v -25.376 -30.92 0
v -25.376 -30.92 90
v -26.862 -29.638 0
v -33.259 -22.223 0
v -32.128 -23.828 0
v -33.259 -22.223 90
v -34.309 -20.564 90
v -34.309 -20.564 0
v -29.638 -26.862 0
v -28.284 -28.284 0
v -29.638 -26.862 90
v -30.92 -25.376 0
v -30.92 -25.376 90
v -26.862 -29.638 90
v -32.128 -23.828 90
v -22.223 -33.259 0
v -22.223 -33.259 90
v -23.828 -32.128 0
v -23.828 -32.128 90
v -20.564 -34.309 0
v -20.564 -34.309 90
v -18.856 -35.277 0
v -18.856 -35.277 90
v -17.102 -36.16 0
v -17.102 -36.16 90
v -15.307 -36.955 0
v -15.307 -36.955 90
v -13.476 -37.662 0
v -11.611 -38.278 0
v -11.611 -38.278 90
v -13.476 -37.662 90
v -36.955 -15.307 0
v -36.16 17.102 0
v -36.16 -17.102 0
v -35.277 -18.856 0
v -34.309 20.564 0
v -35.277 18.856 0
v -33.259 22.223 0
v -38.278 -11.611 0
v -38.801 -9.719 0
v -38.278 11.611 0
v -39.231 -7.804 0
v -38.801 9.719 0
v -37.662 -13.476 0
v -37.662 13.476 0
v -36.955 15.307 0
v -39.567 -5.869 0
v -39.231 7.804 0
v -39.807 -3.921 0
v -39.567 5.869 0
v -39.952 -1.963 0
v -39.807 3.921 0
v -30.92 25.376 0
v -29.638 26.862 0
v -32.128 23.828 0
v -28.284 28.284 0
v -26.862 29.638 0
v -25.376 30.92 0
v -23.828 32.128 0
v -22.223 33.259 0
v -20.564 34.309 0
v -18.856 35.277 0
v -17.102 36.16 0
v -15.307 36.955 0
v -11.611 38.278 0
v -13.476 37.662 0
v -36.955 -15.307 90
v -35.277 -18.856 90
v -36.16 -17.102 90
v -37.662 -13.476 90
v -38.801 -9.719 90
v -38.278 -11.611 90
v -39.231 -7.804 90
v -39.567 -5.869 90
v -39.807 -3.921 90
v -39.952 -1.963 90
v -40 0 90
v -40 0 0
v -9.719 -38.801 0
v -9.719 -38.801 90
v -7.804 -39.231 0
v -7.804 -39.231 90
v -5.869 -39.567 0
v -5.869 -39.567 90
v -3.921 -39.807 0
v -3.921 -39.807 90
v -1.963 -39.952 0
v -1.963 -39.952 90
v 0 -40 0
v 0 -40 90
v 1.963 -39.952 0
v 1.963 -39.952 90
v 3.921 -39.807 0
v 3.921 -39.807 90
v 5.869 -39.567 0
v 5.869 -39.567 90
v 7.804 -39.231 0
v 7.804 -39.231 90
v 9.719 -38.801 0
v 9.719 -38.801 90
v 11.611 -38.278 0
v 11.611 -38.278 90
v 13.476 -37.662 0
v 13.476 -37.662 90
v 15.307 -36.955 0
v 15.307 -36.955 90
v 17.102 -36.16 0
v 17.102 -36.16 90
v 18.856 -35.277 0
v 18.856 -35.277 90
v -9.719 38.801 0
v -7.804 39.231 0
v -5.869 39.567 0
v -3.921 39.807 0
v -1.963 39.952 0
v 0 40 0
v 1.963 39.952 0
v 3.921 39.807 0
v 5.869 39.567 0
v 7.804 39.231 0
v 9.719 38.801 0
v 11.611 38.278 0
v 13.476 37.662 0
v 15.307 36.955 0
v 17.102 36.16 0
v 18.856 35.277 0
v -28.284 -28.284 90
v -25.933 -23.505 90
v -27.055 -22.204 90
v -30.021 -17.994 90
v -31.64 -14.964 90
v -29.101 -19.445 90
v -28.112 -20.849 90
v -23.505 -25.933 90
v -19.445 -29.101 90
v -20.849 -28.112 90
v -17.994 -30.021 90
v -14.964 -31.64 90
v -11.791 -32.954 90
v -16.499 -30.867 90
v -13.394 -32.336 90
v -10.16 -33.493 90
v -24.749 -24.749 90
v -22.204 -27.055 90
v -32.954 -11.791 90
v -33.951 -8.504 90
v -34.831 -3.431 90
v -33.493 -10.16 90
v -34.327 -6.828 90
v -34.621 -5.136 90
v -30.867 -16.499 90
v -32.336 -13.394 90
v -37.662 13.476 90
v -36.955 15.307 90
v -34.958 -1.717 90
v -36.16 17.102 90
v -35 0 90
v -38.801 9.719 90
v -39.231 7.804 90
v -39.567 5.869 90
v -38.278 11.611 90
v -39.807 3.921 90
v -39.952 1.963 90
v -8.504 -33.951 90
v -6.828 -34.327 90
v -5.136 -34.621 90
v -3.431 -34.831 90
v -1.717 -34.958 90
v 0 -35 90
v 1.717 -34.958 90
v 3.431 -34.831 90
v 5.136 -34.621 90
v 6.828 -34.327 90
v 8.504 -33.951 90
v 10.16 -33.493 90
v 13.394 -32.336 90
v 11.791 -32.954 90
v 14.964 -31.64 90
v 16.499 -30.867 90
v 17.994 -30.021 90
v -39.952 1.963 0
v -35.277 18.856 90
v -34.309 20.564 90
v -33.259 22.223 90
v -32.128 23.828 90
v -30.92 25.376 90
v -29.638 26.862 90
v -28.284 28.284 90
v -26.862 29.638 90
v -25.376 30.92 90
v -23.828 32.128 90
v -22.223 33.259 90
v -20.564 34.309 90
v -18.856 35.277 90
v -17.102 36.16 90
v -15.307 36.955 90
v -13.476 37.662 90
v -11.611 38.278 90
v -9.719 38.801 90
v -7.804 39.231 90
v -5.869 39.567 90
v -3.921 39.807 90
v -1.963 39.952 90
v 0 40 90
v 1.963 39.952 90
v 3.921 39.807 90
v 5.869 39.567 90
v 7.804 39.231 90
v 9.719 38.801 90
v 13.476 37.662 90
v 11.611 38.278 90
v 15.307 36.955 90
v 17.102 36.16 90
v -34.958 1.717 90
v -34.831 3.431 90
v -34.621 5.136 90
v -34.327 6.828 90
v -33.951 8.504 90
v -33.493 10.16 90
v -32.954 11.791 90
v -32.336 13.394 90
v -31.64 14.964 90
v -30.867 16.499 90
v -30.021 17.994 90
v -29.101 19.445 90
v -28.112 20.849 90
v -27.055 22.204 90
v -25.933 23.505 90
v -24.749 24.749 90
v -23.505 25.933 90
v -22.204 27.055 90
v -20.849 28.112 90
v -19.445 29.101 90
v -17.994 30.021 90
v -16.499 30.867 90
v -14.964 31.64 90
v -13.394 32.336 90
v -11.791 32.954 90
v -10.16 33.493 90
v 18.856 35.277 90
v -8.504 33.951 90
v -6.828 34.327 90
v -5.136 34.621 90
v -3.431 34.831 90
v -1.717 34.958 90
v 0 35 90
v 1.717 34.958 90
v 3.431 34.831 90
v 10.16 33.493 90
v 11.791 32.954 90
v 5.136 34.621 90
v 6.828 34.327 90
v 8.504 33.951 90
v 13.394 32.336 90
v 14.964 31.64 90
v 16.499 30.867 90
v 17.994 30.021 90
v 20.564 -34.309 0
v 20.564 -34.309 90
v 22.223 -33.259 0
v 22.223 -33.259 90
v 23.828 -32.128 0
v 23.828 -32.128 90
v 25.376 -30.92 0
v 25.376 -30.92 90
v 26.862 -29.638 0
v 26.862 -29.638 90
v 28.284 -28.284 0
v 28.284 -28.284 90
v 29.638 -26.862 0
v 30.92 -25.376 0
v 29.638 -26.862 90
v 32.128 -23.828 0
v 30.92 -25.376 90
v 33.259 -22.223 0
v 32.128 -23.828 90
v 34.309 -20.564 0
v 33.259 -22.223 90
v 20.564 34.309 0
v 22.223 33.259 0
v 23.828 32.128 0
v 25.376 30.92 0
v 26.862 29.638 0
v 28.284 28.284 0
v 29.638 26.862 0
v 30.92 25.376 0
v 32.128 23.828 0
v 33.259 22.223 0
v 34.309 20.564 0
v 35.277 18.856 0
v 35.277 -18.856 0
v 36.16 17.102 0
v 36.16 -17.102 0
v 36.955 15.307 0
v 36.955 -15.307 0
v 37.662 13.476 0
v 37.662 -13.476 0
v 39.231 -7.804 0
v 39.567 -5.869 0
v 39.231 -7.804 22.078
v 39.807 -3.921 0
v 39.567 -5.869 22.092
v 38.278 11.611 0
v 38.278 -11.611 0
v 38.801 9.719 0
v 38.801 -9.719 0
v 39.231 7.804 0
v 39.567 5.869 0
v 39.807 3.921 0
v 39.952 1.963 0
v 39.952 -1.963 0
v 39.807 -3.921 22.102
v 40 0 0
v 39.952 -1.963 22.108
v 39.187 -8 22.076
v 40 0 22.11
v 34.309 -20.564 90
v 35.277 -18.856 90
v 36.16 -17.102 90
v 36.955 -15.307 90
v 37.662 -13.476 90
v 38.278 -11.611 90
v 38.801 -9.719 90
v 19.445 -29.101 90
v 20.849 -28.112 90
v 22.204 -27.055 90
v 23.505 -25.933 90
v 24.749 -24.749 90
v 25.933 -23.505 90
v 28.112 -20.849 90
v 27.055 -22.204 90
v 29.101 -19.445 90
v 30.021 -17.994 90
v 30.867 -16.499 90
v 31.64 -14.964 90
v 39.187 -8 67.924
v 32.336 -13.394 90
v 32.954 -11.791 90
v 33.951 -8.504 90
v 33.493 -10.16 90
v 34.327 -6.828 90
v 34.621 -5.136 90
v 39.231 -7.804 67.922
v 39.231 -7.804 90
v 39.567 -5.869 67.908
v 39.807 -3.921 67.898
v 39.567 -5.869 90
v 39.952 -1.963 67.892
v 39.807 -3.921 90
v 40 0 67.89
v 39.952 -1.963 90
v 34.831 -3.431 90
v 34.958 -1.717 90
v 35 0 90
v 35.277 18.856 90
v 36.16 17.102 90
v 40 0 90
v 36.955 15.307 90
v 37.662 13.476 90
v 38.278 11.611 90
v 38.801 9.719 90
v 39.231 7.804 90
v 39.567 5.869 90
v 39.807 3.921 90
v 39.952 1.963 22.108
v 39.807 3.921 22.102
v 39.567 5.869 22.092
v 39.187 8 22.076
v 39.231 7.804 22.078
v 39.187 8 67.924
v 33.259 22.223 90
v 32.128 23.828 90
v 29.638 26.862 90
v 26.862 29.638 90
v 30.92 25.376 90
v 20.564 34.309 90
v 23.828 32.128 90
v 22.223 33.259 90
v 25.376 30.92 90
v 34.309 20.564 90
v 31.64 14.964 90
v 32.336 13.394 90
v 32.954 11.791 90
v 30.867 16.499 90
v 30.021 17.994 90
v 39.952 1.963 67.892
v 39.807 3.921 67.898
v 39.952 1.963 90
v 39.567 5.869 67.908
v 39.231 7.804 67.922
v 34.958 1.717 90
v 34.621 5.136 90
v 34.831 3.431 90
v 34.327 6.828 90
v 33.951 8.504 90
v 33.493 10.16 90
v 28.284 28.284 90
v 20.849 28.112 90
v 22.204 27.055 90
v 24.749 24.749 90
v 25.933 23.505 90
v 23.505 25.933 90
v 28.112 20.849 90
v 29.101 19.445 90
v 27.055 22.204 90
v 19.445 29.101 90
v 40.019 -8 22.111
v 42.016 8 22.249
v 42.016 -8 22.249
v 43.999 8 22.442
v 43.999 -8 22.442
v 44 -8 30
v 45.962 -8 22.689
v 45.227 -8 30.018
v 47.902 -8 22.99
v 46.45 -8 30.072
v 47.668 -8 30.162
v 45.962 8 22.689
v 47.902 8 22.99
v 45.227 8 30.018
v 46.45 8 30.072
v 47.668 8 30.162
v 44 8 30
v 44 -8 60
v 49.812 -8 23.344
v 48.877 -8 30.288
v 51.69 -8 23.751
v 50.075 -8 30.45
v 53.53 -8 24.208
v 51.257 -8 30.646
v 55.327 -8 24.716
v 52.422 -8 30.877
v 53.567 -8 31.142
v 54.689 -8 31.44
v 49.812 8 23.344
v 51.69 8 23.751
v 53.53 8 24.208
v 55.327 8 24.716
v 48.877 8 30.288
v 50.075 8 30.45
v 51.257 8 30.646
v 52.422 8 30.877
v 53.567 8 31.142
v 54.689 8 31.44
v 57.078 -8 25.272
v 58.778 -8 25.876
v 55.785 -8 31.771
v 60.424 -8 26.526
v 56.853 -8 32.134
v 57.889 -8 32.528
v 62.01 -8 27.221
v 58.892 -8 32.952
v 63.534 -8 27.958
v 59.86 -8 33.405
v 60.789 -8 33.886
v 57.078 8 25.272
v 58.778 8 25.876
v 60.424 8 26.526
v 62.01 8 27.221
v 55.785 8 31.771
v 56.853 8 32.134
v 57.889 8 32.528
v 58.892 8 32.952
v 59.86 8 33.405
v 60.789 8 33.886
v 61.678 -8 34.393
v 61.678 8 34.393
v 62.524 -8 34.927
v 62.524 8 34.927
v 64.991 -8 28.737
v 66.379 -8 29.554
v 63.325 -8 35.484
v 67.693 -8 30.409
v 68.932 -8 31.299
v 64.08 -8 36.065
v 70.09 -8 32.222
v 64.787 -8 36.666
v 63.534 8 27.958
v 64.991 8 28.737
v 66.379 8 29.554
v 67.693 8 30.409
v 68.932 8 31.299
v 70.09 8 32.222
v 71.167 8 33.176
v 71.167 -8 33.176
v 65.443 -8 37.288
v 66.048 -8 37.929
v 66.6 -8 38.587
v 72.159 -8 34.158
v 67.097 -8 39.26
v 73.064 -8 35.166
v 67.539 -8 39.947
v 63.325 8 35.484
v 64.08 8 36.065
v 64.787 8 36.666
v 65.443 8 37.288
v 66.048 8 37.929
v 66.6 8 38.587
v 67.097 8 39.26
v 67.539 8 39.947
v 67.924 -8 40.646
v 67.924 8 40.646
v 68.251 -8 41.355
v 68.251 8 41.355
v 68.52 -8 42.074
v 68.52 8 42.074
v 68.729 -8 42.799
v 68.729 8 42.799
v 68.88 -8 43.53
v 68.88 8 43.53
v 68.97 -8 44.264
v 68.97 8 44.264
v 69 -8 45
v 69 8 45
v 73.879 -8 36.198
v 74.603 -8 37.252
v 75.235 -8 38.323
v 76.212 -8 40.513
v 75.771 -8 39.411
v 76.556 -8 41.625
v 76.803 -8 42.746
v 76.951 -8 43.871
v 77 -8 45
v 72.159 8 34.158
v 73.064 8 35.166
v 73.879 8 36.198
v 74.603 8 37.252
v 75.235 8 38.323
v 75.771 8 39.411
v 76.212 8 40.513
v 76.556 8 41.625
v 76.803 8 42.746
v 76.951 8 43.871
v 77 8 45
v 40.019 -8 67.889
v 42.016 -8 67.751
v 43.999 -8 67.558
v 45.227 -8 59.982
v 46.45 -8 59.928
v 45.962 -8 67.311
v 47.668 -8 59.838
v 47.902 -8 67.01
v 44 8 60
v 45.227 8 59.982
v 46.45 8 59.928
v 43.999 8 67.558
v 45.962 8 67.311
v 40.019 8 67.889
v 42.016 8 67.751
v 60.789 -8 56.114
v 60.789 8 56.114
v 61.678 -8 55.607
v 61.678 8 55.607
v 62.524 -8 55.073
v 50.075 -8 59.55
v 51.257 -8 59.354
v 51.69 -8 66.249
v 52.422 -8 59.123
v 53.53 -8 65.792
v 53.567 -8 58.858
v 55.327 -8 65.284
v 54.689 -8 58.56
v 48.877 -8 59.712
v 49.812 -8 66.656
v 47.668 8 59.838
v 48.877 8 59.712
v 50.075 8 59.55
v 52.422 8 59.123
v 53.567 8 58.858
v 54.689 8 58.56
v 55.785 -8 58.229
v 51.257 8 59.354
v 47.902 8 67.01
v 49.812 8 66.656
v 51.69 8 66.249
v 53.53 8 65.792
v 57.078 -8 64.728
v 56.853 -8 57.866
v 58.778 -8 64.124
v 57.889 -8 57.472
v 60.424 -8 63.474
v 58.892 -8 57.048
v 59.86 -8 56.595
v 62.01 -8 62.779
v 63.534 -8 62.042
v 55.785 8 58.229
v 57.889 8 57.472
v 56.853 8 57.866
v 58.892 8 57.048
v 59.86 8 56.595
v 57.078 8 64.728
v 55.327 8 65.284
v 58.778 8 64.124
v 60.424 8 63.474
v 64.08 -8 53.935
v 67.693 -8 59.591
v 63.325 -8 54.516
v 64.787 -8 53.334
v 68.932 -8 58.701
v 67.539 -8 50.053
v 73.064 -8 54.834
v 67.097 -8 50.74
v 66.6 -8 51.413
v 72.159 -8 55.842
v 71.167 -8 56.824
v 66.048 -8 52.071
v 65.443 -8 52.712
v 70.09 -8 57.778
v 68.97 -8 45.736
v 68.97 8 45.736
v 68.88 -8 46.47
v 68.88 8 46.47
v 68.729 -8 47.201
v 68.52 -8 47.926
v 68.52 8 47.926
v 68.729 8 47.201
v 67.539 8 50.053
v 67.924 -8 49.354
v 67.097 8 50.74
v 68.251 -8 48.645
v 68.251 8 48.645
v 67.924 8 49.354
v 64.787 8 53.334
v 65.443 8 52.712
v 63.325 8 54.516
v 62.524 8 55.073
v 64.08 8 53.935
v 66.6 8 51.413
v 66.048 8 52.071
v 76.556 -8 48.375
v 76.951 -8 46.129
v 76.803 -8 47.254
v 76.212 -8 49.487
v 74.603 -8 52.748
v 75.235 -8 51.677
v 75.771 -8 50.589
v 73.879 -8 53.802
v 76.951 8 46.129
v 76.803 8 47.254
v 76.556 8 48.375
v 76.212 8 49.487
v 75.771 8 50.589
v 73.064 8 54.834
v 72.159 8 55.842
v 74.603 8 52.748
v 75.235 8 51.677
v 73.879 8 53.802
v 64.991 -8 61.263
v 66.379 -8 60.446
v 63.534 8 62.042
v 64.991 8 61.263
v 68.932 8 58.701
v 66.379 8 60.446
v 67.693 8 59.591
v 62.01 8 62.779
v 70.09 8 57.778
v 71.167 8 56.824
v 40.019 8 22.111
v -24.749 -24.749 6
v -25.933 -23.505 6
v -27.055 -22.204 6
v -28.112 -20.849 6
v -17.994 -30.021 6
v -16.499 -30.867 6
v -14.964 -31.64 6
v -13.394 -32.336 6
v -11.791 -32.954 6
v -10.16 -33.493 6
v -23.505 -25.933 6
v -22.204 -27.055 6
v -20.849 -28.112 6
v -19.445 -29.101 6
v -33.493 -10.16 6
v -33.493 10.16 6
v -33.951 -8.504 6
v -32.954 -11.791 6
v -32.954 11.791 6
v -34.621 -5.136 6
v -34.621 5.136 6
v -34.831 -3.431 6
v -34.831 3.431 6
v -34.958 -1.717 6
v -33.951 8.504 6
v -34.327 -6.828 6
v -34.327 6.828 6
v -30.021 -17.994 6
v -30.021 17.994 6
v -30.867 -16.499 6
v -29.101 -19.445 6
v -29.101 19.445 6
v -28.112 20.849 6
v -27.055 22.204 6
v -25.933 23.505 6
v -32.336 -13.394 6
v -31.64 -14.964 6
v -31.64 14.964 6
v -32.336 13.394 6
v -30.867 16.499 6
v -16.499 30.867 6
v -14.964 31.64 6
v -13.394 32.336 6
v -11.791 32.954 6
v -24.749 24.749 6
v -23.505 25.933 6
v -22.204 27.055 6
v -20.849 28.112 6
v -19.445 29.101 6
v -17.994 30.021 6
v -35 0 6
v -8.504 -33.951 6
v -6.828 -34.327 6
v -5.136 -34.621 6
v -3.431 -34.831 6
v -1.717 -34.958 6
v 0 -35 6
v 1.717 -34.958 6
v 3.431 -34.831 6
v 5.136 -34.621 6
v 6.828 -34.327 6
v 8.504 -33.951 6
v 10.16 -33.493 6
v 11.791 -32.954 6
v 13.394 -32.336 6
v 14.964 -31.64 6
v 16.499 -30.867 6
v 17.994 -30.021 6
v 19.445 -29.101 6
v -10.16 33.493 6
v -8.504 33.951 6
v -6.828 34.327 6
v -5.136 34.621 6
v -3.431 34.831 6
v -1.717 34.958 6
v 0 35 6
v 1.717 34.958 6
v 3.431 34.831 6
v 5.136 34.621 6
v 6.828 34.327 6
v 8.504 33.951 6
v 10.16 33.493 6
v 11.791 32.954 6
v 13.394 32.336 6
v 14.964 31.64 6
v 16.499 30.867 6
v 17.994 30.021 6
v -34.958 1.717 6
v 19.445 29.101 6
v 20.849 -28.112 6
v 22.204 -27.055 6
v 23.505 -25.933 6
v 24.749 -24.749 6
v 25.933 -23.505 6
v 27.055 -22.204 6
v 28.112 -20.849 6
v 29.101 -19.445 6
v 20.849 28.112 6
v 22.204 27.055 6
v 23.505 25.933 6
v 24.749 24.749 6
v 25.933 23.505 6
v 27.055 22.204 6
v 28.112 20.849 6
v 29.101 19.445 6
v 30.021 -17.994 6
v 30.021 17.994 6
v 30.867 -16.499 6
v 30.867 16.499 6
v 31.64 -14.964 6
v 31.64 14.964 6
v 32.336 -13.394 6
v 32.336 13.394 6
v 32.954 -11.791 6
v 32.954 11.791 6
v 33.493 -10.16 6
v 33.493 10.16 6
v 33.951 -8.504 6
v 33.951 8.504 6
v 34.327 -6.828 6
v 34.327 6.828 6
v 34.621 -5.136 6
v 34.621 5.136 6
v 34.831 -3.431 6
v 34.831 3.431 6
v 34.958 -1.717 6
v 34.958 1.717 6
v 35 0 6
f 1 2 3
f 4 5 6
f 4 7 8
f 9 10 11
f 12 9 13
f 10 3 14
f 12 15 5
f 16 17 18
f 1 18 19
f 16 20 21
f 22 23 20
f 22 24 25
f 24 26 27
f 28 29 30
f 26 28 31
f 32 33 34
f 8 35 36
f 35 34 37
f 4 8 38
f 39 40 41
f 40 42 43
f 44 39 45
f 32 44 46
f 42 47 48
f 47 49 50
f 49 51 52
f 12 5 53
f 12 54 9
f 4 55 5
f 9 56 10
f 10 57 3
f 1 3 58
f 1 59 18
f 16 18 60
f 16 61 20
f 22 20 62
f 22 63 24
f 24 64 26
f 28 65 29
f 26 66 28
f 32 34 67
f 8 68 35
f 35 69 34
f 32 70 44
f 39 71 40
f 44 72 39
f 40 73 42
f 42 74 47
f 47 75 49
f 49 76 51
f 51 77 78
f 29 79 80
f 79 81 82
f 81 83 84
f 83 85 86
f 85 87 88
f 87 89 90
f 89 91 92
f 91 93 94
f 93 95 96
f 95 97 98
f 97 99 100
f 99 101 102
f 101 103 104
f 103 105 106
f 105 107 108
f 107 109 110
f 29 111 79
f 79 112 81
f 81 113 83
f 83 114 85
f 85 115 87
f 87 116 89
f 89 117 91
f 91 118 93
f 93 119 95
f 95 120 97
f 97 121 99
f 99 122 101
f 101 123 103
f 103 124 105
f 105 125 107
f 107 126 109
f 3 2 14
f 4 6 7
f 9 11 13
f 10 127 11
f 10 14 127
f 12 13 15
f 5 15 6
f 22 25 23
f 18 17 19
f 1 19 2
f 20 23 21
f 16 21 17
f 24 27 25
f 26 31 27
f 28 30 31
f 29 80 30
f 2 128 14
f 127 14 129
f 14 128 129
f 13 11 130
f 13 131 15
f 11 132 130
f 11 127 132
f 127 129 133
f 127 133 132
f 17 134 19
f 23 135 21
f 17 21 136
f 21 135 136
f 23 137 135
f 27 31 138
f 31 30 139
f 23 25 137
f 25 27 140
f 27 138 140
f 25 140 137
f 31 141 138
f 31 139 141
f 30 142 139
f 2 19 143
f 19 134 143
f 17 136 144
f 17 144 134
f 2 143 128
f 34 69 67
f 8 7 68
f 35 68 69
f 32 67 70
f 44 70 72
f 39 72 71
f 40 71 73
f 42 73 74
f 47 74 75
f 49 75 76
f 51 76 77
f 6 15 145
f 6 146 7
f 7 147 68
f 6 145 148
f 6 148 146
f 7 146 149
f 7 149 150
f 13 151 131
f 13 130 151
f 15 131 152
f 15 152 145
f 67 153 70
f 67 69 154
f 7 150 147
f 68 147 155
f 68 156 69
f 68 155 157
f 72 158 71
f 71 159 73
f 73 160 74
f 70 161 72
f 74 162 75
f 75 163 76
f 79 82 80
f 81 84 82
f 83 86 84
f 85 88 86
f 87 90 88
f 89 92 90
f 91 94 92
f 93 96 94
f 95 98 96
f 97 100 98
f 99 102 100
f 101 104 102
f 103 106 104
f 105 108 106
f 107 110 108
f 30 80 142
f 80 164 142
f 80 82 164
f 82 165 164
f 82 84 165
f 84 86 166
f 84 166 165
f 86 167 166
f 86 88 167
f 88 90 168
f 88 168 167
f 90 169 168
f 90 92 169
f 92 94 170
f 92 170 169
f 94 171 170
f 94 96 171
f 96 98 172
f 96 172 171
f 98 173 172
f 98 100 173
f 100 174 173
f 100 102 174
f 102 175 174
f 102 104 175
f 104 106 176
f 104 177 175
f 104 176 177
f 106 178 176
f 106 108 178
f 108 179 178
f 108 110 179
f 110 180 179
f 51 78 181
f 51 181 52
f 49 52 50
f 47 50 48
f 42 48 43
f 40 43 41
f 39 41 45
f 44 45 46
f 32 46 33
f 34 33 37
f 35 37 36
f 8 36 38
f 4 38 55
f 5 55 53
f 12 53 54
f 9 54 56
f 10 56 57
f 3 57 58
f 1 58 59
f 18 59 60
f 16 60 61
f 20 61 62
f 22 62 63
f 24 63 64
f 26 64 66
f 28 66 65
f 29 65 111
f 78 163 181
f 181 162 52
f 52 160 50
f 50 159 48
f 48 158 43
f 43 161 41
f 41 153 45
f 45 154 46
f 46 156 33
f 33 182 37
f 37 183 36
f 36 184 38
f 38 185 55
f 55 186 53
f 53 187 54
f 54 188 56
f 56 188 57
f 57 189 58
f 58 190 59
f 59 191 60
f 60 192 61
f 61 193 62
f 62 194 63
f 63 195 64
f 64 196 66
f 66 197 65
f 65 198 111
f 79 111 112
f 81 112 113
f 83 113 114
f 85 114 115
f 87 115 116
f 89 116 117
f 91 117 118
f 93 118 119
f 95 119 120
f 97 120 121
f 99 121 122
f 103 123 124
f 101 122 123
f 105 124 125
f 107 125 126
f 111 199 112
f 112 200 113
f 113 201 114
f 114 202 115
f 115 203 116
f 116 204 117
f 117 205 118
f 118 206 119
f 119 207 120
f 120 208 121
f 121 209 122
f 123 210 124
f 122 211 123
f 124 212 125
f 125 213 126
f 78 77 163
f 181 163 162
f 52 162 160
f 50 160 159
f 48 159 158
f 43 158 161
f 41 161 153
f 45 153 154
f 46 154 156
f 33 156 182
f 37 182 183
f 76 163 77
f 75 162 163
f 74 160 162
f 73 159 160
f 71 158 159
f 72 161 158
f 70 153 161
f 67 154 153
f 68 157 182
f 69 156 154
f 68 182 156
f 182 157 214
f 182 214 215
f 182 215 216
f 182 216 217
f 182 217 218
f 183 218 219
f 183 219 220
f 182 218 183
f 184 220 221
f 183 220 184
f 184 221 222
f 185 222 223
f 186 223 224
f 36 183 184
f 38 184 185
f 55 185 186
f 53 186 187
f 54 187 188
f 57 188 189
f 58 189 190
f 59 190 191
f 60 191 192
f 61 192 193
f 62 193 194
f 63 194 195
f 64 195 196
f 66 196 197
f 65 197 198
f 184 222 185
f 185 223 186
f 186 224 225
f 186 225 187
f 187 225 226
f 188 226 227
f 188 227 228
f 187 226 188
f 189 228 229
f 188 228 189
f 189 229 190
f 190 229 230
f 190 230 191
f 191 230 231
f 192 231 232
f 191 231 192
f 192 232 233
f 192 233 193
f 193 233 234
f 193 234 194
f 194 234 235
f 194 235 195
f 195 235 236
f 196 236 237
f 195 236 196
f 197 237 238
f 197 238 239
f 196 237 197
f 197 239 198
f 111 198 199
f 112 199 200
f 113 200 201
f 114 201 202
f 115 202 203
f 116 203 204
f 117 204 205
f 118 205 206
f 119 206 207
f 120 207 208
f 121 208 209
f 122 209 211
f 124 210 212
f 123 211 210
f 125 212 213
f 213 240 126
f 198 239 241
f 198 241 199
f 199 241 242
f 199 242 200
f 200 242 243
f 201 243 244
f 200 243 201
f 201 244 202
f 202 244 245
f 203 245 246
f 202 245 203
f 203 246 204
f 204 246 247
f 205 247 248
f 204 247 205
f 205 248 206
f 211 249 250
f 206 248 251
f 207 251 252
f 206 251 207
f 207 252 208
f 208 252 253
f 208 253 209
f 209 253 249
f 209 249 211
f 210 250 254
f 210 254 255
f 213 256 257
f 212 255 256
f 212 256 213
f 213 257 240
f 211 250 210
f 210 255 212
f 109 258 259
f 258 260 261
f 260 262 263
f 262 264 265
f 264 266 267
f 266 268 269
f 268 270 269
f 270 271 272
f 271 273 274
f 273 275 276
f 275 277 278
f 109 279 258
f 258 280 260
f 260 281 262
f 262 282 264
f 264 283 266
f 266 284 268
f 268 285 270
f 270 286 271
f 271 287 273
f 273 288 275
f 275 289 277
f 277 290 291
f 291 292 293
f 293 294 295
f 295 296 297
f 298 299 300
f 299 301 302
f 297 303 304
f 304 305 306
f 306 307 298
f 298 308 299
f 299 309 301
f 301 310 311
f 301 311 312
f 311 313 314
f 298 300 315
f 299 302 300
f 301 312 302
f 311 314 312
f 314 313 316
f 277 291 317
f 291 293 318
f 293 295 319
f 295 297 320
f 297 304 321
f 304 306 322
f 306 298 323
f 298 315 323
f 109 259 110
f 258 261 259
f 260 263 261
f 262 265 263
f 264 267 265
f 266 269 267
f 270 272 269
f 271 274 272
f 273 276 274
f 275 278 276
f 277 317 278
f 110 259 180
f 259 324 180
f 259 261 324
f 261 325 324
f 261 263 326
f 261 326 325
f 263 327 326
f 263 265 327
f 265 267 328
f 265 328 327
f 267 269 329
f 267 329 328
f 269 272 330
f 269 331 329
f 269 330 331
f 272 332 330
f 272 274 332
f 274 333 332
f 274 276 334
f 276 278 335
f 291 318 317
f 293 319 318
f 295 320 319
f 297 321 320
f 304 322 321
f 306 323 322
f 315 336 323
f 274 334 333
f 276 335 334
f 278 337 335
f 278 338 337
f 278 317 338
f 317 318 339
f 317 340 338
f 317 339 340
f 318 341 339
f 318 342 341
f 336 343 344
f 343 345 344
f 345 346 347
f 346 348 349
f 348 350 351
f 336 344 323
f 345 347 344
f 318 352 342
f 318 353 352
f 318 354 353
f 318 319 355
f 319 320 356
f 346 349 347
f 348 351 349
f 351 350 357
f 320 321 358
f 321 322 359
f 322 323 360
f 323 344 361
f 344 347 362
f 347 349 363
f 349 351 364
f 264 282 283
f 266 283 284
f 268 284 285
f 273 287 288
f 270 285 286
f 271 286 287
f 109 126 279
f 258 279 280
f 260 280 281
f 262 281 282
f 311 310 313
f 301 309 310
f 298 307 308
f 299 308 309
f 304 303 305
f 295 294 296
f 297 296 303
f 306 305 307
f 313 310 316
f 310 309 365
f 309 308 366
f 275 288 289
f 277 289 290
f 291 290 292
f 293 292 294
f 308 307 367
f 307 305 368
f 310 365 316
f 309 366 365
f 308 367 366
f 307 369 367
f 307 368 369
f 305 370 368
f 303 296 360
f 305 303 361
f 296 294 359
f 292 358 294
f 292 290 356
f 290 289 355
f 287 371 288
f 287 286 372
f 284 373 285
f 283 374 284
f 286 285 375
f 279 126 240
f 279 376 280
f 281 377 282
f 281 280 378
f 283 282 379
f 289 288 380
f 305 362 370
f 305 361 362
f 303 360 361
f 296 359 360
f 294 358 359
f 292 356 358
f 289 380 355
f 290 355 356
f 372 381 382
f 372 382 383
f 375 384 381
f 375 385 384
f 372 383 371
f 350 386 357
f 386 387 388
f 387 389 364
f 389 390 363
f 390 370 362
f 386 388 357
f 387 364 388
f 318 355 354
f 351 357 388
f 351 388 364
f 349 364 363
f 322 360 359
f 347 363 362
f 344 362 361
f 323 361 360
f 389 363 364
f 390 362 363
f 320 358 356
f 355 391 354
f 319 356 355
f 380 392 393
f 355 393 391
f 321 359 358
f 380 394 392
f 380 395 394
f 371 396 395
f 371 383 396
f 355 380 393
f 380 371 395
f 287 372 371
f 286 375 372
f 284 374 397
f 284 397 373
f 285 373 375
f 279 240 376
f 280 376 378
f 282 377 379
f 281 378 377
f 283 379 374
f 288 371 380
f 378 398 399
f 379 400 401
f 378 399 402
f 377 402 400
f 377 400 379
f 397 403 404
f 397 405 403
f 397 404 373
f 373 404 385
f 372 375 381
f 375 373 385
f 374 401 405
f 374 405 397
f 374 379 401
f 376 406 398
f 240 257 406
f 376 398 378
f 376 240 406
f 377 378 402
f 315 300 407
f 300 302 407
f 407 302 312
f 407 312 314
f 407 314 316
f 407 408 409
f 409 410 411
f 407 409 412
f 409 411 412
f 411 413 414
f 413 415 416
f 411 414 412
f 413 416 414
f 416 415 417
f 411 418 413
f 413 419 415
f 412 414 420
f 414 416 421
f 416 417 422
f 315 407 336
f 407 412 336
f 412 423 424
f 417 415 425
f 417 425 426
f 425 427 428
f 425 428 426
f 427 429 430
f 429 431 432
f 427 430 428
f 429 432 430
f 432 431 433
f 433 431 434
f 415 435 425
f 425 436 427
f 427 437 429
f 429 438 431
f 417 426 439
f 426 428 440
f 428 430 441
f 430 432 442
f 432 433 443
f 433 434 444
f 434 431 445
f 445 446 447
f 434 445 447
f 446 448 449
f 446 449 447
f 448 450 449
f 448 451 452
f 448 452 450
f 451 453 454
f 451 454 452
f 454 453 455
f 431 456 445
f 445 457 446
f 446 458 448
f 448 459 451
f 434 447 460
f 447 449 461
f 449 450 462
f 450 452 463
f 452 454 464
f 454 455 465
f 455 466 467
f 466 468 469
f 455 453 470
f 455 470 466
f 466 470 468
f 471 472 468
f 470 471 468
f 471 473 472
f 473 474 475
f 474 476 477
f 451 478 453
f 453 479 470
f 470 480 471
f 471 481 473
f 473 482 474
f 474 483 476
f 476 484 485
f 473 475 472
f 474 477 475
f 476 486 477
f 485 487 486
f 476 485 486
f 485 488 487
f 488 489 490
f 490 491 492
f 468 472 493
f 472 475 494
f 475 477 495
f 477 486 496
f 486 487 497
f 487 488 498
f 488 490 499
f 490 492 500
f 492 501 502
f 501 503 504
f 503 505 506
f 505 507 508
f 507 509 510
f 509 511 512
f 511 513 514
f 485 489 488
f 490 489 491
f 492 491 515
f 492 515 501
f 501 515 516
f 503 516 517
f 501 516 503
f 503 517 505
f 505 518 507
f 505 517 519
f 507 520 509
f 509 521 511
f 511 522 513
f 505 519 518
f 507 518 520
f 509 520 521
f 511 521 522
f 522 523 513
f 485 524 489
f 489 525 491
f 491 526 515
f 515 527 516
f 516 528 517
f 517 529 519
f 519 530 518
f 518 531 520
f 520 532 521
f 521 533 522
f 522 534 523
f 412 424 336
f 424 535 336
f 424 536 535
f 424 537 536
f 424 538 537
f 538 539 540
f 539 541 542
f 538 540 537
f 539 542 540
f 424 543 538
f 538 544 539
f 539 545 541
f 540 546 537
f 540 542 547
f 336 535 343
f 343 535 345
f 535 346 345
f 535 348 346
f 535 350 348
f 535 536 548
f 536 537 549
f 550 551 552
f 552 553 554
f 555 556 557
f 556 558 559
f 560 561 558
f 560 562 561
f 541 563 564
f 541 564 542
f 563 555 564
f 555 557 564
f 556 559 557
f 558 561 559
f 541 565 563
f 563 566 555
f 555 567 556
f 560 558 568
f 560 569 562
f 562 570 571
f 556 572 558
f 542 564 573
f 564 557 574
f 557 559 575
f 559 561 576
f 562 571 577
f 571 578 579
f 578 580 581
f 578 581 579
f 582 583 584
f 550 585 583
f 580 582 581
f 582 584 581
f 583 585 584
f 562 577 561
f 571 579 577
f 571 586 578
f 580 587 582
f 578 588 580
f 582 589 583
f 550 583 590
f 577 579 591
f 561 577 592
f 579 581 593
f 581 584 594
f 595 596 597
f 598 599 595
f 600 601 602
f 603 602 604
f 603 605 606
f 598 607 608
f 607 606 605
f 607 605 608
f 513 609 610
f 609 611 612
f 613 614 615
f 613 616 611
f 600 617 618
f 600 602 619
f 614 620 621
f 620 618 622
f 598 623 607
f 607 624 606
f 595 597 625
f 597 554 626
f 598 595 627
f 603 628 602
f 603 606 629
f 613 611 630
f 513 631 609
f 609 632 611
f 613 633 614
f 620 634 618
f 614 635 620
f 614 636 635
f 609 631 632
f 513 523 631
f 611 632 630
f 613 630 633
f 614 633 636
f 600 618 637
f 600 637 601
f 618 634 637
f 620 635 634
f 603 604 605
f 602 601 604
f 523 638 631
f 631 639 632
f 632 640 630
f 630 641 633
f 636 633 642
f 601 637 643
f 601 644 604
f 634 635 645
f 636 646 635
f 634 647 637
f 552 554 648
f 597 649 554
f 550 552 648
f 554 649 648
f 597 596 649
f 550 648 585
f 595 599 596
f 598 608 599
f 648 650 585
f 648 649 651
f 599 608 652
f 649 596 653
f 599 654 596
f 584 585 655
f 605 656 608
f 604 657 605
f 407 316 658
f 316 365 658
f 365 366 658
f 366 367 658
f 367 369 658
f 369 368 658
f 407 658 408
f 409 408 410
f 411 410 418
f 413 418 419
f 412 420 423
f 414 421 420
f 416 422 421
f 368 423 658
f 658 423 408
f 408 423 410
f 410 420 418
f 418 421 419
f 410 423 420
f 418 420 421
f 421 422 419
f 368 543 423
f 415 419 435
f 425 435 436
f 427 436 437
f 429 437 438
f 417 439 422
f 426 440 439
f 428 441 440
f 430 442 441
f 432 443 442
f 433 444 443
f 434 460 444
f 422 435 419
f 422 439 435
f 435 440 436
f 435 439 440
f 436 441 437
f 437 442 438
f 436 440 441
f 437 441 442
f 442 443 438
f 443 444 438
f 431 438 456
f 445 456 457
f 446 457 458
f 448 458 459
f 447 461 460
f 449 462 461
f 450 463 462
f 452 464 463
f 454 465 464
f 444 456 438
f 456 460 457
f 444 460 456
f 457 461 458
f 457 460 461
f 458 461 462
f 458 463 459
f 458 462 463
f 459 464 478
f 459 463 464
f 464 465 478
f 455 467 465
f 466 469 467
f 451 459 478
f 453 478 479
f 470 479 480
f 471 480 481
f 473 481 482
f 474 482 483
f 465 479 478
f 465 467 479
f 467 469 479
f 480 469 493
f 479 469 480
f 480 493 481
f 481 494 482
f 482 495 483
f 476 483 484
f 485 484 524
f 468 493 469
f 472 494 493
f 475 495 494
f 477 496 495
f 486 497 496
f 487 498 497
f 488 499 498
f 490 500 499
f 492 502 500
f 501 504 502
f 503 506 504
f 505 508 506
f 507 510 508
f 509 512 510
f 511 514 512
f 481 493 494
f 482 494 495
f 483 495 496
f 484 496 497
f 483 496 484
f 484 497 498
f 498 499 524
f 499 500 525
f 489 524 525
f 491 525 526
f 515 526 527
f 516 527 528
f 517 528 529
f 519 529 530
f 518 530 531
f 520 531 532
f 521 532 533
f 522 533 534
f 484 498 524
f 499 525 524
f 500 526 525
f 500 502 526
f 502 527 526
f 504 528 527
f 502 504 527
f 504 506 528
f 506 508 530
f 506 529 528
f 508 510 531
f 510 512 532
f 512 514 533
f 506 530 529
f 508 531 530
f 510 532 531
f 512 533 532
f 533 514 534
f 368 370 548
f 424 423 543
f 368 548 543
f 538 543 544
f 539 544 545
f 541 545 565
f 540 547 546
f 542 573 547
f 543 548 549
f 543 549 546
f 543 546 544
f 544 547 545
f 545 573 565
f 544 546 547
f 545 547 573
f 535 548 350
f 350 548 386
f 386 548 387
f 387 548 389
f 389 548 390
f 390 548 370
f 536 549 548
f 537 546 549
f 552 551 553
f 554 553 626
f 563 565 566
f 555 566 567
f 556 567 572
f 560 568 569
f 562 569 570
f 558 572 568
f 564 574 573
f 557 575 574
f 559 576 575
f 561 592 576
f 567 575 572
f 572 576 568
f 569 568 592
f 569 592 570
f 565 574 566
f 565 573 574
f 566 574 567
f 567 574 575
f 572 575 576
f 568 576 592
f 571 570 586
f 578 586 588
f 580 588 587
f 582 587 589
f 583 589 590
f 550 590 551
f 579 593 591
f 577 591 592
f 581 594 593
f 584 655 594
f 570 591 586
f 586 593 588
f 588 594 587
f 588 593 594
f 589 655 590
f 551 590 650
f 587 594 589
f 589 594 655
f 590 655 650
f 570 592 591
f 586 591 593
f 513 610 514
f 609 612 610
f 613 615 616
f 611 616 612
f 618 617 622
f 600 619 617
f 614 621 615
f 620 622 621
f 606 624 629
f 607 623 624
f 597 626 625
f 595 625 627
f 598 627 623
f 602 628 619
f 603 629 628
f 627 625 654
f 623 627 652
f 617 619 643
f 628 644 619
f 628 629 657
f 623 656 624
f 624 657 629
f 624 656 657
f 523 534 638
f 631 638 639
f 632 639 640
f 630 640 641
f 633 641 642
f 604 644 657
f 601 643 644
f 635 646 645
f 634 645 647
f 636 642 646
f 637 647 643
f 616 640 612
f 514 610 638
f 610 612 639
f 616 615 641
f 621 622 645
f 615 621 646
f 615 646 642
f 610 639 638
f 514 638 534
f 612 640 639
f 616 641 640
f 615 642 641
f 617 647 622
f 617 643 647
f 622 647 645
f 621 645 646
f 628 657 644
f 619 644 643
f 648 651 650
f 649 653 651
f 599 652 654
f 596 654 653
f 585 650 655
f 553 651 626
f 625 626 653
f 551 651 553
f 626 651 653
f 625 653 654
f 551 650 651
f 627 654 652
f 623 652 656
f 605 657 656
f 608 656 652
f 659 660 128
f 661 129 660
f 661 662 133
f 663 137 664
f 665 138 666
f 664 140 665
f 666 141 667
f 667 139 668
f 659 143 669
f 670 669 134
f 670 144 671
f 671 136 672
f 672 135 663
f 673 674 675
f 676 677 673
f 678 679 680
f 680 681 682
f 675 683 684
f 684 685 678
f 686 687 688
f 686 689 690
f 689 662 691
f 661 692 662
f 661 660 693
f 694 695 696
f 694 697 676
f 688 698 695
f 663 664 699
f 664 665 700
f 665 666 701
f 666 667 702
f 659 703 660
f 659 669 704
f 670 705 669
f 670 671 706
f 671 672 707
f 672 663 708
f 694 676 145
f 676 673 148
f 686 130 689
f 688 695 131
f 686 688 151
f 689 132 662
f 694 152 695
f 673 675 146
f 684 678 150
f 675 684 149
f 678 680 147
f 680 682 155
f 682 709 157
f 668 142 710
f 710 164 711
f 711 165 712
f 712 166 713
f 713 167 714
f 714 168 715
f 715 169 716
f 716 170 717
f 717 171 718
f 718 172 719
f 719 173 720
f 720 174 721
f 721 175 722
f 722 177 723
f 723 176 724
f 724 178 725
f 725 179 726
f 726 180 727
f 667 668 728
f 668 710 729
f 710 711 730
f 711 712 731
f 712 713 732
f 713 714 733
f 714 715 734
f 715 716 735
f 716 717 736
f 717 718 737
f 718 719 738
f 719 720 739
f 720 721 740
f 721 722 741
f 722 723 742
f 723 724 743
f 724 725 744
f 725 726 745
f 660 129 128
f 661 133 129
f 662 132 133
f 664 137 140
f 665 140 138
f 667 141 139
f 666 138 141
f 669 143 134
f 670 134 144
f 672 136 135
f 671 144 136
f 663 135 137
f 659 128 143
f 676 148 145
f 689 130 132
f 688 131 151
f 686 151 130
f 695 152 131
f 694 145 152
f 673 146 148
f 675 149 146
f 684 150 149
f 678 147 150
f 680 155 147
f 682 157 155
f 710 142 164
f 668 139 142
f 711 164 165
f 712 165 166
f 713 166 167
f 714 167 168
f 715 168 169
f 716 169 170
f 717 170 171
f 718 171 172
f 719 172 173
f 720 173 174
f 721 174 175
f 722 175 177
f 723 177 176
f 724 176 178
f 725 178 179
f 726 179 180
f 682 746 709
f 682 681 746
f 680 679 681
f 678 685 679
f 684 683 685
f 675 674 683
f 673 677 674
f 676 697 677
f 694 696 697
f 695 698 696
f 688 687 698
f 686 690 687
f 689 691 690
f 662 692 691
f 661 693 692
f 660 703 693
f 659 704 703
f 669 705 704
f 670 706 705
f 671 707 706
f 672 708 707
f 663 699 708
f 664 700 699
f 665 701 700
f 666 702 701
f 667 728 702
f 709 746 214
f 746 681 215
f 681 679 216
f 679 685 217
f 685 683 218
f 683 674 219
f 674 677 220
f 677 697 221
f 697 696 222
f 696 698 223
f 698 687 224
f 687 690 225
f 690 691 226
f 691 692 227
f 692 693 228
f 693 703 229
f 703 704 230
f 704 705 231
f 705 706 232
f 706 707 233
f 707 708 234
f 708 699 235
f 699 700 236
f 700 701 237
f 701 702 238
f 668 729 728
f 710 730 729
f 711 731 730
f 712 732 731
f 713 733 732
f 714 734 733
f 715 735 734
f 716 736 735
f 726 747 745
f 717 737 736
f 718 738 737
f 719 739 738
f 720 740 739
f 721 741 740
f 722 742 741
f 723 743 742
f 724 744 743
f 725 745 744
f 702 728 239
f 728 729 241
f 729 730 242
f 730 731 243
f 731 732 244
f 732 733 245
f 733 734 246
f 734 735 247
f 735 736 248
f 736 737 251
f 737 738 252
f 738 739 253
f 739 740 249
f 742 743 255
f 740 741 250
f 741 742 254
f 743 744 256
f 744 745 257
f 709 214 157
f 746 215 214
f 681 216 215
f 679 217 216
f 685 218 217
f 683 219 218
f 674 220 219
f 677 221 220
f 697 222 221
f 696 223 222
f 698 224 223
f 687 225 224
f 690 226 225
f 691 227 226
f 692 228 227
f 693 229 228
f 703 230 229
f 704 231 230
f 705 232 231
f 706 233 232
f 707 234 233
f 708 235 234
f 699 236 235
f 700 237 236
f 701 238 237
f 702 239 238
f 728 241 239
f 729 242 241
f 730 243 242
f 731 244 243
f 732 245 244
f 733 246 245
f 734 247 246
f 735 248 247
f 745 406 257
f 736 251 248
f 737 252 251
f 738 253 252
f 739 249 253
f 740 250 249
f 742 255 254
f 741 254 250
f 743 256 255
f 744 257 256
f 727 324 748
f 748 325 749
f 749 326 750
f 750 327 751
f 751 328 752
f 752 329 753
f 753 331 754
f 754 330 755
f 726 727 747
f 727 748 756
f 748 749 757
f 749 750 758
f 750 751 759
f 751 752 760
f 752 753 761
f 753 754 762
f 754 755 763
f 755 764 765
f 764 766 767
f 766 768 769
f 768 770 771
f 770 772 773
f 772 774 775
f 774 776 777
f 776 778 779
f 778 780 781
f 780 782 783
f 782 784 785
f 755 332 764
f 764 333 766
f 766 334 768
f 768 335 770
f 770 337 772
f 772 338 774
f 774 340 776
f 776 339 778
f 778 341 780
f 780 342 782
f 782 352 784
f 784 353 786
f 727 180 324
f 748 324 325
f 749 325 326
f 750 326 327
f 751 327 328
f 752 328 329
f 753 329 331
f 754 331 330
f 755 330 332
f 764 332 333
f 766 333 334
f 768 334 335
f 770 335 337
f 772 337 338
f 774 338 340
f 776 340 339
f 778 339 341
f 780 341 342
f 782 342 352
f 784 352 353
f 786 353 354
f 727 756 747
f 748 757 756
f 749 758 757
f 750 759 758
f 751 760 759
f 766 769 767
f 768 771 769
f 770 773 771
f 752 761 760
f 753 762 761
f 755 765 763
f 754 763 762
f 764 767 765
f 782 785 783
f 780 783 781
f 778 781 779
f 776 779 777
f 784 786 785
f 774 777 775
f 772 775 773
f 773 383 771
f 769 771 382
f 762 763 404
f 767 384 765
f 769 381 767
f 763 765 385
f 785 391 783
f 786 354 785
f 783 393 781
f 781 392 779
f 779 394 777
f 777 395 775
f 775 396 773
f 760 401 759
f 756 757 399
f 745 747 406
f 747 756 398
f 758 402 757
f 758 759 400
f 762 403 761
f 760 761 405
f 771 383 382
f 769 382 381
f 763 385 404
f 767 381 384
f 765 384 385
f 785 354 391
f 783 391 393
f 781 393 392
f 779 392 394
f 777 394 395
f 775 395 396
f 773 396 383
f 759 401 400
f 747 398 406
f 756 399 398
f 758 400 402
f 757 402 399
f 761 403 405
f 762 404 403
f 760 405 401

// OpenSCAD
$fn = 128;

outer_d = 80;
inner_d = 70;
height = 90;
bottom_thickness = 6;

outer_r = outer_d / 2;
inner_r = inner_d / 2;

// Handle parameters
handle_depth = 16;          // Y方向の厚み
handle_wall = 8;
handle_center_z = height / 2;

inner_handle_h = 30;
inner_handle_w = 25;

inner_x0 = outer_r + 4;     // 取手内側の本体側直線位置
inner_rx = inner_handle_w;
inner_ry = inner_handle_h / 2;

outer_x0 = outer_r - 4;     // 本体外周へ確実に食い込ませて接続
outer_rx = inner_handle_w + handle_wall * 2;
outer_ry = inner_ry + handle_wall;

module d_shape_2d(x0, zc, rx, ry, steps = 64) {
    pts = concat(
        [[x0, zc - ry], [x0, zc + ry]],
        [for (i = [0 : steps])
            let(a = 90 - 180 * i / steps)
            [x0 + rx * cos(a), zc + ry * sin(a)]
        ]
    );
    polygon(points = pts);
}

module handle() {
    rotate([90, 0, 0])
        linear_extrude(height = handle_depth, center = true, convexity = 10)
            difference() {
                d_shape_2d(
                    outer_x0,
                    handle_center_z,
                    outer_rx,
                    outer_ry
                );
                d_shape_2d(
                    inner_x0,
                    handle_center_z,
                    inner_rx,
                    inner_ry
                );
            }
}

module mug_body_outer() {
    cylinder(h = height, r = outer_r);
}

module mug_inner_void() {
    translate([0, 0, bottom_thickness])
        cylinder(h = height + 2, r = inner_r);
}

difference() {
    union() {
        mug_body_outer();
        handle();
    }
    mug_inner_void();
}
